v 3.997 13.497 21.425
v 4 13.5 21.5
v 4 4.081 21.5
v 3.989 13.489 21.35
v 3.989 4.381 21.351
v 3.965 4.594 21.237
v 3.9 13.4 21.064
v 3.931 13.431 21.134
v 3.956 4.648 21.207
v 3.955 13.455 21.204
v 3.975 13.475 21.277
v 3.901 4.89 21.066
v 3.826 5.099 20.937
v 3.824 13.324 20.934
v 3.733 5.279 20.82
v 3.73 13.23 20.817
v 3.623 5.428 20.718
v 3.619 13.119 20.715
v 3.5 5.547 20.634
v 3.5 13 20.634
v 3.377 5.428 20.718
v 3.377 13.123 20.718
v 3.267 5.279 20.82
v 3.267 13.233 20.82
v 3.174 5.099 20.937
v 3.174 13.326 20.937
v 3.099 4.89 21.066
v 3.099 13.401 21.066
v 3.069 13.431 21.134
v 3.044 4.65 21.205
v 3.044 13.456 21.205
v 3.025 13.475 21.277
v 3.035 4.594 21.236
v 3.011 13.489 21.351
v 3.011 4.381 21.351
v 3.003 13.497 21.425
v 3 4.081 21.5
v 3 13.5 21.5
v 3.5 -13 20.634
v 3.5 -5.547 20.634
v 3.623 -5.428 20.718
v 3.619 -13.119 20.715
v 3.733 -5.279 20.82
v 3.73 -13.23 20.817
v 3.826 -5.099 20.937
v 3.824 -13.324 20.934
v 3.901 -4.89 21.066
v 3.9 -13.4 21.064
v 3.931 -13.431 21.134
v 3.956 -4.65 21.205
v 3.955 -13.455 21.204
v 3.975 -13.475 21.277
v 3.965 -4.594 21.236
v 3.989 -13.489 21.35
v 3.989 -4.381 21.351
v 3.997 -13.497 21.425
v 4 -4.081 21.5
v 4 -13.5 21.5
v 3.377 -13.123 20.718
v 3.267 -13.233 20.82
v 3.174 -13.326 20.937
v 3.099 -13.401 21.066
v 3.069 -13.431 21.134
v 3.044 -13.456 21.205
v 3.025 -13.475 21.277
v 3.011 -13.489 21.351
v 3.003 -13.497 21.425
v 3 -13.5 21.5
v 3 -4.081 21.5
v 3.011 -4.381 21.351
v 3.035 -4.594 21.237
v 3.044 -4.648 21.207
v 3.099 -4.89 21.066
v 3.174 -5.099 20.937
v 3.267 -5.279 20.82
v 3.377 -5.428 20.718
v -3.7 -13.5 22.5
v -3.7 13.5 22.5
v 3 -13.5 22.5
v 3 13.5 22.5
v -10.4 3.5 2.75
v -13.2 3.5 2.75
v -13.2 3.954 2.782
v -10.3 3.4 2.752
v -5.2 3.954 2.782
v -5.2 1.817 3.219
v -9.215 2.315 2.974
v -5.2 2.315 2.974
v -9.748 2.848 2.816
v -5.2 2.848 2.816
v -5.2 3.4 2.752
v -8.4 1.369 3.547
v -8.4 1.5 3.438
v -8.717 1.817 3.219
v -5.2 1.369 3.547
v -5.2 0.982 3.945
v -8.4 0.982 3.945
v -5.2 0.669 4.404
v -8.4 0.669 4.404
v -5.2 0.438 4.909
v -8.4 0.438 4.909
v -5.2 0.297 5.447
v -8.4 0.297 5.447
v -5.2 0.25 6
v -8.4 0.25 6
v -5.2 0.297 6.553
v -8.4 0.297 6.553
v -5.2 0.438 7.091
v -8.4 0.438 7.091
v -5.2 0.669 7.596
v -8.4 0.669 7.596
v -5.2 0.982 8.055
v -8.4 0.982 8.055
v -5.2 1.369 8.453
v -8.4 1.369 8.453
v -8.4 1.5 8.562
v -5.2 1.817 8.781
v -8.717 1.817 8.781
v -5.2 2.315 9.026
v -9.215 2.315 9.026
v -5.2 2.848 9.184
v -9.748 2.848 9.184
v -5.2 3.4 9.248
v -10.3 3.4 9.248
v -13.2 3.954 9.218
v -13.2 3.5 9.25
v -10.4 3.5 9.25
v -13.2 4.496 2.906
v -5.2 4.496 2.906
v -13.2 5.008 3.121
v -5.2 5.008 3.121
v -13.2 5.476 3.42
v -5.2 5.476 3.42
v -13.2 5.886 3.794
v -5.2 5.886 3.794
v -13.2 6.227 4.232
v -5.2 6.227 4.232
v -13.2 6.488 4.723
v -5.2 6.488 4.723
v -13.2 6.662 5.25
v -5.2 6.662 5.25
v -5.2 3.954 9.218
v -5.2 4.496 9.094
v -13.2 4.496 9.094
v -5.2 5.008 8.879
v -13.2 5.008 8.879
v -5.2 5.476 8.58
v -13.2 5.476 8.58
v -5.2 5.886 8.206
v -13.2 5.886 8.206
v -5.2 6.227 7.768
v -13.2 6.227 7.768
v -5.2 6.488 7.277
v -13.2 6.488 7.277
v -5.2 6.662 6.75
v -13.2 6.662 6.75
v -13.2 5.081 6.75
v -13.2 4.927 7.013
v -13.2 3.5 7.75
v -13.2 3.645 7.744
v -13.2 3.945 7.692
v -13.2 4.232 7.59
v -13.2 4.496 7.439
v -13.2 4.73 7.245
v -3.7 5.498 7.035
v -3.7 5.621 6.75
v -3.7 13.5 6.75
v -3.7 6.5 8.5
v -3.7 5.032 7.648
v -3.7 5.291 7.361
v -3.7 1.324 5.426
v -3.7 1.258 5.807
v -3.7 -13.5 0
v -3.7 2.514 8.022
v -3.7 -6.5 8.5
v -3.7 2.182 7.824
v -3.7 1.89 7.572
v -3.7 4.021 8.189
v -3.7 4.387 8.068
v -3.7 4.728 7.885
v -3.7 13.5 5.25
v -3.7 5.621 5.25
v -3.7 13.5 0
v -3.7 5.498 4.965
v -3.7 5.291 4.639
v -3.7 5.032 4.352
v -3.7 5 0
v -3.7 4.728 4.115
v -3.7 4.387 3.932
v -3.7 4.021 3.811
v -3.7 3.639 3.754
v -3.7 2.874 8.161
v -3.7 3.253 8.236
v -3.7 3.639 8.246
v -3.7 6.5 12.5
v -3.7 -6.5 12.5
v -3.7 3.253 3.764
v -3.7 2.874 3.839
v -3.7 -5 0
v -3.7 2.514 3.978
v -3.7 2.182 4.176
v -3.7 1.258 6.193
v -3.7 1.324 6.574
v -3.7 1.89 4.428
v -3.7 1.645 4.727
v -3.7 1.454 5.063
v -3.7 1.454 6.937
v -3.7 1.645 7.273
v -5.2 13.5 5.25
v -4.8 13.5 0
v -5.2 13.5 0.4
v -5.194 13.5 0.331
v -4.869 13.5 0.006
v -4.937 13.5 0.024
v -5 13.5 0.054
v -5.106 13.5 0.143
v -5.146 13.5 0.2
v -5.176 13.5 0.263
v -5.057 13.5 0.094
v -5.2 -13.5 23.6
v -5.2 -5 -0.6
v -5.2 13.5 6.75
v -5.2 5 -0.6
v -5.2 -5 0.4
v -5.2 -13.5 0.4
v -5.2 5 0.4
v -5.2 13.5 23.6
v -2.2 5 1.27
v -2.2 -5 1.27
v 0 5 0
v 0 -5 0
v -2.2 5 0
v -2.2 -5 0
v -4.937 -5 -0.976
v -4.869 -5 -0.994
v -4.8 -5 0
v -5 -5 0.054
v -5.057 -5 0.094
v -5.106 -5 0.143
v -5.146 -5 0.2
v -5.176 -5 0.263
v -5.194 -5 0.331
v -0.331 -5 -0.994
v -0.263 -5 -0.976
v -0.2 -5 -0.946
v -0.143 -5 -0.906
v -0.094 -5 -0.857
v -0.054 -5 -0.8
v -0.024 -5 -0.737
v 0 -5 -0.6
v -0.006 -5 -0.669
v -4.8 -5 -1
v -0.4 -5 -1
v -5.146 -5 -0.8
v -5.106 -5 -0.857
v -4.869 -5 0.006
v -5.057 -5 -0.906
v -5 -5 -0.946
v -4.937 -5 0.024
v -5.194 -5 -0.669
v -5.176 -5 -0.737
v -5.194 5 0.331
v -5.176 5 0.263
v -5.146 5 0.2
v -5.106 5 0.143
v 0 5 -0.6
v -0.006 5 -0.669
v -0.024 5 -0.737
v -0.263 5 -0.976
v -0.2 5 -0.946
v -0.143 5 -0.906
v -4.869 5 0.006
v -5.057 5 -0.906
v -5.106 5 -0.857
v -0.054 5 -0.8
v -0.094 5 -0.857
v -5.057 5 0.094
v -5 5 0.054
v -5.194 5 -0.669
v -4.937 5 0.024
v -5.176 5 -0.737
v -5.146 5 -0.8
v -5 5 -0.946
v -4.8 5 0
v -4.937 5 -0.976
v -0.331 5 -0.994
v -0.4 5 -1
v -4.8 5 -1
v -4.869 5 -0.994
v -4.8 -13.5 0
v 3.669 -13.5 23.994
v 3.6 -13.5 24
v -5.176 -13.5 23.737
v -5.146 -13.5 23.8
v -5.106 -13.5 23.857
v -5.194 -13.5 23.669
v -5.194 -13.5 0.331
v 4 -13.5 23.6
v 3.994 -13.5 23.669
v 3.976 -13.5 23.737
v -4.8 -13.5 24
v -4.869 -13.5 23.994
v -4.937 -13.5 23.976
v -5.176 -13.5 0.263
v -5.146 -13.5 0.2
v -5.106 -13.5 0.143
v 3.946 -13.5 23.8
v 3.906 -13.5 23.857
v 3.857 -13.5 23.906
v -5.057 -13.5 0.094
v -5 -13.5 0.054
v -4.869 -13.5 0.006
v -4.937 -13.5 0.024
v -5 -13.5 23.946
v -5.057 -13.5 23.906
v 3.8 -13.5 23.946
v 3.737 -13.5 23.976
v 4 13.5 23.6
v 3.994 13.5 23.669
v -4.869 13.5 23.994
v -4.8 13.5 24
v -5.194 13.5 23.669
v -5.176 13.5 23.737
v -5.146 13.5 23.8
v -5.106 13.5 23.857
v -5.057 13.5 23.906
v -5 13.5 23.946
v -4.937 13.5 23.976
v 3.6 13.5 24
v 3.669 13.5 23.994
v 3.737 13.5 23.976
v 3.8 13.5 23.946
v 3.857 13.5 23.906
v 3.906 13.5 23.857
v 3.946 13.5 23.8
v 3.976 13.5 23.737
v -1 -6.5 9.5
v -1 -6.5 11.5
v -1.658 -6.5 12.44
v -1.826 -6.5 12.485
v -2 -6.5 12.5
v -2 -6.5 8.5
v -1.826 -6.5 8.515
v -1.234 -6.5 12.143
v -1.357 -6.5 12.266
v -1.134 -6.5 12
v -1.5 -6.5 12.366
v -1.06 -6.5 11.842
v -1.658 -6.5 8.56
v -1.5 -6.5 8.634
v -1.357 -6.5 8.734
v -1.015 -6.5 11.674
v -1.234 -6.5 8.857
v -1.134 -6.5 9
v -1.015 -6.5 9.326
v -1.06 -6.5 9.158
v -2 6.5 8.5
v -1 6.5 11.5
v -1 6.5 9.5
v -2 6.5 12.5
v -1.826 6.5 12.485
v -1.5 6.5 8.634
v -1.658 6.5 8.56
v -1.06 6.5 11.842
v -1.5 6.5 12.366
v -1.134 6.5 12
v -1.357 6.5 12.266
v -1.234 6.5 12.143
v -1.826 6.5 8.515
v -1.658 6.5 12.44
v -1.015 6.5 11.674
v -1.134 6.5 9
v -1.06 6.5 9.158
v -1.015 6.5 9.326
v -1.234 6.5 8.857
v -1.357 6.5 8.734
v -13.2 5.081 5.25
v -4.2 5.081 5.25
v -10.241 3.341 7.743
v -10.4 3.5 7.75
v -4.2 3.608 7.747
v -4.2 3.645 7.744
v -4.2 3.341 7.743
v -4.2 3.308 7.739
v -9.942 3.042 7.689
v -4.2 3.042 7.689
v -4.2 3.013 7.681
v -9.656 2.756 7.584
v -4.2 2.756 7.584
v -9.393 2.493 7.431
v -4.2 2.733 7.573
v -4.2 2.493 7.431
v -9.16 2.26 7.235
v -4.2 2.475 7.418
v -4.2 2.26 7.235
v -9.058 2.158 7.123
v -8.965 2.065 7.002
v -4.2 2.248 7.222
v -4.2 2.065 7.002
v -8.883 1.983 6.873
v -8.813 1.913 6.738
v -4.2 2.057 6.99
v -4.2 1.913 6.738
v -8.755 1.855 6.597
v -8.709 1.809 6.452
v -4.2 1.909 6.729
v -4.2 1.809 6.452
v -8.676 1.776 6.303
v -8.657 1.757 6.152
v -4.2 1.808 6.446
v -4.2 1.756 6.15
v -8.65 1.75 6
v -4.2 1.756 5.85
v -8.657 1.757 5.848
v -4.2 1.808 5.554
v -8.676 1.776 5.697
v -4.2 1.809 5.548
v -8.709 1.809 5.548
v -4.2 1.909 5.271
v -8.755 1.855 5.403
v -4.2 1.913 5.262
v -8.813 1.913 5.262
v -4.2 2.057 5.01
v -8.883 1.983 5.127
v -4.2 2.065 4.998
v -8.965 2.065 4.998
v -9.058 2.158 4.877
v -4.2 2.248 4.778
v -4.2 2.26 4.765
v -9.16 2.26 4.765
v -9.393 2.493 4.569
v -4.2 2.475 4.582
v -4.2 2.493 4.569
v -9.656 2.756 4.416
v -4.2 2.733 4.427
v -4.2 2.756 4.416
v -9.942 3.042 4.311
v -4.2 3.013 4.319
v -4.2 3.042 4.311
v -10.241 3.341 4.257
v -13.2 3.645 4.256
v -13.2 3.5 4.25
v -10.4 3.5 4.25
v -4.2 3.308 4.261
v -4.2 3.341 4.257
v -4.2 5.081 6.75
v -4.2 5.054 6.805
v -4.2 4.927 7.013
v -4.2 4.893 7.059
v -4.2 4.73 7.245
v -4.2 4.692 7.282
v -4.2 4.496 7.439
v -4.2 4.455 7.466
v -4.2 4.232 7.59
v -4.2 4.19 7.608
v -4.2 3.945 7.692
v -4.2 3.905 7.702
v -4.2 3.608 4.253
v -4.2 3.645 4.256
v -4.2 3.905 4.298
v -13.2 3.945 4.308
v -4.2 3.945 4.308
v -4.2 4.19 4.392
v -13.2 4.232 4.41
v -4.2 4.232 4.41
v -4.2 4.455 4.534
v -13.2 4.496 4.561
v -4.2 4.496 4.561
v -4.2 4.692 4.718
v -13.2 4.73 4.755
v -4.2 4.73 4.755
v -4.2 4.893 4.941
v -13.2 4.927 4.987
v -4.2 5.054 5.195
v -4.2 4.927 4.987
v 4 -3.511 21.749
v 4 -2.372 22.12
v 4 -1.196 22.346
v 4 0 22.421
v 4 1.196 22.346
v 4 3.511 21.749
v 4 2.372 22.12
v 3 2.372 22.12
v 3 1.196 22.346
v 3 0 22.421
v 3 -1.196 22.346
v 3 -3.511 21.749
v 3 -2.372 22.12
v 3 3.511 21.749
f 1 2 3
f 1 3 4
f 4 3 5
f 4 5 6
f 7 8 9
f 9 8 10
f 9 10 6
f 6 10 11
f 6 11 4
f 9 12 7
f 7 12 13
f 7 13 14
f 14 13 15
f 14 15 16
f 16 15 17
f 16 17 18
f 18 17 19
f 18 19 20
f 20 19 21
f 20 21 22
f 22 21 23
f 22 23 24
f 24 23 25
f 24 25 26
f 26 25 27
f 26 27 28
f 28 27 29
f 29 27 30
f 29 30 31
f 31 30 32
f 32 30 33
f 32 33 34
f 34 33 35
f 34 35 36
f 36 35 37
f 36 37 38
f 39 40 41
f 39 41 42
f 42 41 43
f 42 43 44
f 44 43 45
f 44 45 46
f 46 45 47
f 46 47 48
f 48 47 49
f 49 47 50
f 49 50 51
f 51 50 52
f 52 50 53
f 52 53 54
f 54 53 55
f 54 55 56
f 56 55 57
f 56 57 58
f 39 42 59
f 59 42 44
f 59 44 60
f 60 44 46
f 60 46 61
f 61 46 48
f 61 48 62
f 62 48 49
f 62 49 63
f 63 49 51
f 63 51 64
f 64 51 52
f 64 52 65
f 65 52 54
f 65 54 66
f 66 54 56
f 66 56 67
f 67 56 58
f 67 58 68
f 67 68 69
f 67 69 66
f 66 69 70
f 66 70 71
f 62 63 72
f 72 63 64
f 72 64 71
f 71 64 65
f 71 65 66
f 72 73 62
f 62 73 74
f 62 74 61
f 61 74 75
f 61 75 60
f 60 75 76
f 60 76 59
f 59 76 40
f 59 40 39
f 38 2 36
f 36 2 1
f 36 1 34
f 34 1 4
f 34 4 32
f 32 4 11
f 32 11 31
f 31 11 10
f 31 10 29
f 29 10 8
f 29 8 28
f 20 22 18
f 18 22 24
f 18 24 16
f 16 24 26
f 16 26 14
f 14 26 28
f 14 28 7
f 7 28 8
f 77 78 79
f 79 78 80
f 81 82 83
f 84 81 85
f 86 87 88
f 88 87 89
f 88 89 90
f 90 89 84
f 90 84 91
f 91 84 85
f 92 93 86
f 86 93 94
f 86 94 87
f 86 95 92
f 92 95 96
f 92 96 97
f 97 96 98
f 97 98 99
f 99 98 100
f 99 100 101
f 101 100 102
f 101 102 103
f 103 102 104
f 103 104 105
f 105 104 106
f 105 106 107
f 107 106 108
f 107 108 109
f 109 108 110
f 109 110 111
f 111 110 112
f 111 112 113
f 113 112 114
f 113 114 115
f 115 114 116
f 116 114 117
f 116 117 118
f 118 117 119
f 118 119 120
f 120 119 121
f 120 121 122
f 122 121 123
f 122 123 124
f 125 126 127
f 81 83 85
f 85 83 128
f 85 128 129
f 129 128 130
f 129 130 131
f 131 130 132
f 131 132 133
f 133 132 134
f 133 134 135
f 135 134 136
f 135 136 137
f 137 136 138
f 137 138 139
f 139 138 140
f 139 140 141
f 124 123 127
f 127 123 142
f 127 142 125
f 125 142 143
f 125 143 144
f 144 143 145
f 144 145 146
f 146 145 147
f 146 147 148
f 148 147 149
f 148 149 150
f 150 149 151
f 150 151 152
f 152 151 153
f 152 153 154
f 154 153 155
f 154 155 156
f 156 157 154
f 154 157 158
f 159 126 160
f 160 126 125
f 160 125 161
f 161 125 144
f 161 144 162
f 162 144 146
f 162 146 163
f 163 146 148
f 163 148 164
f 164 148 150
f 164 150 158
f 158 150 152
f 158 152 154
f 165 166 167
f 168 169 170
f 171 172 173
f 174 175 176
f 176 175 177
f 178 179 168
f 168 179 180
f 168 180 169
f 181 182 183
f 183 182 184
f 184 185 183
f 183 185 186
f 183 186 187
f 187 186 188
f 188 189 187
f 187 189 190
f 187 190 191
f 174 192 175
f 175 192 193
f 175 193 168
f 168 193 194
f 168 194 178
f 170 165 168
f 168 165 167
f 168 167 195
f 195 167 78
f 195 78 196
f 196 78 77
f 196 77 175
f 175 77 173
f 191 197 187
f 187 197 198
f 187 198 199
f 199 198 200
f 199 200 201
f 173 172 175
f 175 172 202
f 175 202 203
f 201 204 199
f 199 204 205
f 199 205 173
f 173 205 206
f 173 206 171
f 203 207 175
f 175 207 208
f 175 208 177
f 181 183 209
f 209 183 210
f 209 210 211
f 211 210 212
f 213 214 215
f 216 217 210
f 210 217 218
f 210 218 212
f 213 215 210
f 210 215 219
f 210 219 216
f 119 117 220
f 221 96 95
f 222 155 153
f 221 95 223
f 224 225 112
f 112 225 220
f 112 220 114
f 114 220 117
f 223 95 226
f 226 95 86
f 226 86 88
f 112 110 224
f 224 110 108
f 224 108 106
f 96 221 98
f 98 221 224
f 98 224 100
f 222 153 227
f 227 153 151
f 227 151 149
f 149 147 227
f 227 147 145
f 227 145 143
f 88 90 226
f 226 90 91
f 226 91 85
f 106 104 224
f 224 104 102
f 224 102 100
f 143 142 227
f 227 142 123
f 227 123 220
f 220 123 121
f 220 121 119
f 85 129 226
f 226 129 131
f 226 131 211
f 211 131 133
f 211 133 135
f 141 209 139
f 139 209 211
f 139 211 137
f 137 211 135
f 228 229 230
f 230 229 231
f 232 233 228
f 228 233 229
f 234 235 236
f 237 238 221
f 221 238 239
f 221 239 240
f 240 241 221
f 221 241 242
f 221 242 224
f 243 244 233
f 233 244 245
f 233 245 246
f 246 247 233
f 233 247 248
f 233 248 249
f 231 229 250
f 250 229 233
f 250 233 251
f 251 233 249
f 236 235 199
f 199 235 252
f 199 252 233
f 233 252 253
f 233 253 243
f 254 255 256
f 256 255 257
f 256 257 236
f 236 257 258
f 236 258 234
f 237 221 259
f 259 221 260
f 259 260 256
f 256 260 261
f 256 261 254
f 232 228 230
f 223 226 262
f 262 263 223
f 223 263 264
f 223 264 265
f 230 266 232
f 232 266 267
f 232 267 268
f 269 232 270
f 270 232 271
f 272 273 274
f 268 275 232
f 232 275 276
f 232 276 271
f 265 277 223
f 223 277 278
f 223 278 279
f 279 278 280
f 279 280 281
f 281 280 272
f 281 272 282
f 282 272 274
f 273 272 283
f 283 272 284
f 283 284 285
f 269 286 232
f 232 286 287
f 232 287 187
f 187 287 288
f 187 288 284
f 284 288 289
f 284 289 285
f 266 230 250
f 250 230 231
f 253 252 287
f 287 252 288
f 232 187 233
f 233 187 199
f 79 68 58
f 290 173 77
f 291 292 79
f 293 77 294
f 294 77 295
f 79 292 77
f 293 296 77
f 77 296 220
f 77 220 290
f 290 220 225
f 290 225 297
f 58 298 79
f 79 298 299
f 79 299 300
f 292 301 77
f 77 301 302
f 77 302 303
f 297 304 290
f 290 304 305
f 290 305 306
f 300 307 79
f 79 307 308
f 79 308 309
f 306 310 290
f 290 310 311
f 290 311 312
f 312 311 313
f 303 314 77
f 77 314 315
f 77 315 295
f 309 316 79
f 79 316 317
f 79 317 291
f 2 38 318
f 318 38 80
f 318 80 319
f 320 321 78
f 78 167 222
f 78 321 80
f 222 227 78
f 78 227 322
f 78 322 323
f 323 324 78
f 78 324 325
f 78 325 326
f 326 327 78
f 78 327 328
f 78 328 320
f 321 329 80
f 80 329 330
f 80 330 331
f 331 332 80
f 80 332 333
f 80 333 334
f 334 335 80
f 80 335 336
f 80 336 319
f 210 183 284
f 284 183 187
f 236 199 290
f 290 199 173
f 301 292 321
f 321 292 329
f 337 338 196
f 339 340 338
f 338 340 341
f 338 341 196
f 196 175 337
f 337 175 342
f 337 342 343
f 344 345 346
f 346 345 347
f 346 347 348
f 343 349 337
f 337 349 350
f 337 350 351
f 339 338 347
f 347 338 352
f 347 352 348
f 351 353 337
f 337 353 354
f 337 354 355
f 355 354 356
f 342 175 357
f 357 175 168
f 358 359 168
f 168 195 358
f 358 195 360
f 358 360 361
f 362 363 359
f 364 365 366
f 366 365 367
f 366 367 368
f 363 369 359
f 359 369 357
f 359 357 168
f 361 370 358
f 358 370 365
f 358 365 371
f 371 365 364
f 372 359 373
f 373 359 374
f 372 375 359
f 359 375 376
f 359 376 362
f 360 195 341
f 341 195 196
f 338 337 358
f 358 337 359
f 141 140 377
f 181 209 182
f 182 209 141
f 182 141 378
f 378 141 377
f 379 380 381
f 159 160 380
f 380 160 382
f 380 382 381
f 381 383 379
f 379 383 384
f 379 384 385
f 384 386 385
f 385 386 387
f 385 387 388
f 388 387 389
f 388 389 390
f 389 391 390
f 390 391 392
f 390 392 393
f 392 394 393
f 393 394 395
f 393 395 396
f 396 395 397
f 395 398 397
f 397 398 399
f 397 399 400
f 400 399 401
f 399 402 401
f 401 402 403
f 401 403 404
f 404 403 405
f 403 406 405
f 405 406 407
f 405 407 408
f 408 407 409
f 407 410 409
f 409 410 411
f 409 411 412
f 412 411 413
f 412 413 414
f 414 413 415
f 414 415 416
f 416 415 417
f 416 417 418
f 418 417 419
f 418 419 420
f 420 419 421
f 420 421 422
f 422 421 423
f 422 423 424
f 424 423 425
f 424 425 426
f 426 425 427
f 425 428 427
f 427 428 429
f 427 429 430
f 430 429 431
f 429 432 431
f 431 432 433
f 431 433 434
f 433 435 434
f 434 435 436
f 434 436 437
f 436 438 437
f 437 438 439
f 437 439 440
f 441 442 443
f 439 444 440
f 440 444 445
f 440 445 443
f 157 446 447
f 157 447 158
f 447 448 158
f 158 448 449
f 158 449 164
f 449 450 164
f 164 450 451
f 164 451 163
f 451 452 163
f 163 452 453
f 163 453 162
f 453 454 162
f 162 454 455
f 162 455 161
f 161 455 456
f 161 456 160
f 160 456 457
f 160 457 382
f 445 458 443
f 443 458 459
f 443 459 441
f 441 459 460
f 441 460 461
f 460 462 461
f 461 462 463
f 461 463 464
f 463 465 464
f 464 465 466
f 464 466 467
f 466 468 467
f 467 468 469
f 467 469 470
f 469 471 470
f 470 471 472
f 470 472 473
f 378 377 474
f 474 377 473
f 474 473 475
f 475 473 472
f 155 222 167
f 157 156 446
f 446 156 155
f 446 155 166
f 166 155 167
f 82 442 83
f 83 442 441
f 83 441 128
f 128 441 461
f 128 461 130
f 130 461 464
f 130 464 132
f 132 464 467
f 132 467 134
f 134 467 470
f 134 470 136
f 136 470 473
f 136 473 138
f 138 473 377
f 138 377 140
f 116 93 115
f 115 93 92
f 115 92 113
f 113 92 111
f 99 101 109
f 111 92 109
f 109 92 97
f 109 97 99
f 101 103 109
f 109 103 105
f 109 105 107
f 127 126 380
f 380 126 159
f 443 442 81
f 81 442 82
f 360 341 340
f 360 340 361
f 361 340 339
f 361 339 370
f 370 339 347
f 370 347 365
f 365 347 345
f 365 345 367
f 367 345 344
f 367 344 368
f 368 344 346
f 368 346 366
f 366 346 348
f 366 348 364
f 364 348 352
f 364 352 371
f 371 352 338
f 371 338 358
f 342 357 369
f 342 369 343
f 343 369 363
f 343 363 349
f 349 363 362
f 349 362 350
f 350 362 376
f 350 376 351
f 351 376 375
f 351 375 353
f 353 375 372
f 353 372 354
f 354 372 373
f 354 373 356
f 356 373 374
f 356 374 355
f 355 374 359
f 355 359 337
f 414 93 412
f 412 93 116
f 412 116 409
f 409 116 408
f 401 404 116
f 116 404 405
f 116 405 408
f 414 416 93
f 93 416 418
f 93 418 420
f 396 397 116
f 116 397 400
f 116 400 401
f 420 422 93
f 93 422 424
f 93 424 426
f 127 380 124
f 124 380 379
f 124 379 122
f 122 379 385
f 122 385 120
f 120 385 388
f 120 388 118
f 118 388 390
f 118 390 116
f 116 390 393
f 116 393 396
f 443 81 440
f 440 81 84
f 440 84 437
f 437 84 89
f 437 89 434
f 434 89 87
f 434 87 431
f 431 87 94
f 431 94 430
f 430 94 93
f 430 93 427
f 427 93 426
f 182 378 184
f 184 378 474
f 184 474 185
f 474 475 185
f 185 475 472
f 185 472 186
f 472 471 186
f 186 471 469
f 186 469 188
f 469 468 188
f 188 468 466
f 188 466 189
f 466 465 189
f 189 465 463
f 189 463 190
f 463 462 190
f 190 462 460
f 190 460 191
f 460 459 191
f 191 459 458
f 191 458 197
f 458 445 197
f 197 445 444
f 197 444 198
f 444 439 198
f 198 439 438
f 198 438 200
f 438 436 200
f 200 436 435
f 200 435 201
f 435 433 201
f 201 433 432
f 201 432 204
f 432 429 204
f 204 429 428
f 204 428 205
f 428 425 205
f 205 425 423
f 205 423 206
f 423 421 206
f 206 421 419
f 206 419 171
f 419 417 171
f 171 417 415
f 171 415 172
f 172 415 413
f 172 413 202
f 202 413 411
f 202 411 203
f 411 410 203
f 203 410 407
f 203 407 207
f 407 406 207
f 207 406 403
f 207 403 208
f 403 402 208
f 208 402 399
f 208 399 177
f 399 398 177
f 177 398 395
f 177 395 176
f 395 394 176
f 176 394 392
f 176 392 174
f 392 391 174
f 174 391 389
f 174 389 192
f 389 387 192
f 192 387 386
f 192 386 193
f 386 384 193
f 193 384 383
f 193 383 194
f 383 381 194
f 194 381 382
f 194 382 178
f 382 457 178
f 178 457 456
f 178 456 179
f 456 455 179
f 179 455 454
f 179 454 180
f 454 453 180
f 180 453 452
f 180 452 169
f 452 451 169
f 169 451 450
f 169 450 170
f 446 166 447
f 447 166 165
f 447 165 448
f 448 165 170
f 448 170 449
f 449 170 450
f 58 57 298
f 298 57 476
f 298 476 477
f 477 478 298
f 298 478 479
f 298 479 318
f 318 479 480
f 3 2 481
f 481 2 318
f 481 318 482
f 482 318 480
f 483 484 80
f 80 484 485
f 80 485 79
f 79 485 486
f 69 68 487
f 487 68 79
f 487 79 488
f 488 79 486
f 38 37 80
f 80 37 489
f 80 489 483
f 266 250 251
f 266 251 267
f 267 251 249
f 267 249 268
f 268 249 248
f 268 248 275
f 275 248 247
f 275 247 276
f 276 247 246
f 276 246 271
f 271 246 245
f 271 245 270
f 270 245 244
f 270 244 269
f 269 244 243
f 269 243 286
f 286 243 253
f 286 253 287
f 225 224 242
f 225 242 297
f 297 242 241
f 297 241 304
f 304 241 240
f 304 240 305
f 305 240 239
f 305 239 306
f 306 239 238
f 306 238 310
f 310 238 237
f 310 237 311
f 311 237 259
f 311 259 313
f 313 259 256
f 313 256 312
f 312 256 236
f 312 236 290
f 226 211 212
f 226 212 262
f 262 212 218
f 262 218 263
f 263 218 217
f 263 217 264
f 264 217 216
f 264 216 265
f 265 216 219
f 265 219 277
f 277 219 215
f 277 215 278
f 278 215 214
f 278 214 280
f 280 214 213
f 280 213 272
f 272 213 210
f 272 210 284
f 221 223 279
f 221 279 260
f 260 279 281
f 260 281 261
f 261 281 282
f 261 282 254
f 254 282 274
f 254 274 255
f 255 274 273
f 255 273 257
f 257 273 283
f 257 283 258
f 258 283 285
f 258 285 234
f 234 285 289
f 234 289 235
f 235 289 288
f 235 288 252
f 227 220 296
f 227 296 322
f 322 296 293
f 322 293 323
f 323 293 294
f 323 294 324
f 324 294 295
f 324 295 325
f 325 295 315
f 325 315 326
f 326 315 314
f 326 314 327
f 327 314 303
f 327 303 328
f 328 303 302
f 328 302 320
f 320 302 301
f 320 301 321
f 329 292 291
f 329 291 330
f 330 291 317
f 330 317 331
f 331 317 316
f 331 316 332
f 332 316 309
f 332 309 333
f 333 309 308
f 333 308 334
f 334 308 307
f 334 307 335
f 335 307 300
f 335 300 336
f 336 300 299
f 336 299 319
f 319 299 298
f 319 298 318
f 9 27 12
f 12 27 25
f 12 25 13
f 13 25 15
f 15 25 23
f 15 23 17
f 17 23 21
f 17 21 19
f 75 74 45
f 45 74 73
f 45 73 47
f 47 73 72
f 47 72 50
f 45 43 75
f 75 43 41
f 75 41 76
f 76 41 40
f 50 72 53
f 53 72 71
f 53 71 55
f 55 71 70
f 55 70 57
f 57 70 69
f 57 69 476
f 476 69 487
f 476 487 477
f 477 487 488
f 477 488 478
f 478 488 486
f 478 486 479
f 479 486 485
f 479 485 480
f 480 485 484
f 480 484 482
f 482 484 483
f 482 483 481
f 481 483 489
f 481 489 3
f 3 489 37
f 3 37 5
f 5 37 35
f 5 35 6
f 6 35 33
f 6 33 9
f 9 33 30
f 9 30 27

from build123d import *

# Parameters (mm, degrees)
BOSS_EXTRUDE1_DEPTH      = 5
BOSS_EXTRUDE1_DEPTH_BACK = 5
SKETCH2_W                = 3.7
SKETCH2_H                = 10
BOSS_EXTRUDE2_DEPTH      = 1
SKETCH3_W                = 1
SKETCH3_H                = 10
BOSS_EXTRUDE3_DEPTH      = 1.5
SKETCH4_W                = 6.7
SKETCH4_H                = 27
SKETCH4_W_2              = 1.5
BOSS_EXTRUDE4_DEPTH      = 1.5
SKETCH5_W                = 4
SKETCH5_H                = 13
BOSS_EXTRUDE5_DEPTH      = 2.7
CUT_EXTRUDE1_DEPTH       = 29.339724769
BOSS_EXTRUDE6_START      = -1.5
BOSS_EXTRUDE6_DEPTH      = 8
CUT_EXTRUDE2_START       = -3.25
SKETCH8_W                = 4.8
SKETCH8_H                = 6.5
CUT_EXTRUDE2_DEPTH       = 3.25
FILLET4_R                = 1
CHAMFER1_SIZE            = 2
CHAMFER3_SIZE            = 0.5
SKETCH4_3_W              = 1
SKETCH4_3_H              = 27
BOSS_EXTRUDE7_DEPTH      = 2
SKETCH4_4_W              = 1
SKETCH4_4_H              = 27
BOSS_EXTRUDE8_DEPTH      = 1.5
FILLET6_R                = 1
FILLET8_R                = 0.4
SKETCH9_R                = 9.5
CUT_EXTRUDE3_DEPTH       = 32.948239388


with BuildPart() as part:
    # Sketch1 → Boss-Extrude1 (new, two sides: drawn at the far end of the back side and taken through both)
    with BuildSketch(Plane(origin=(0, 0, 0), x_dir=(1, 0, 0), z_dir=(0, 1, 0)).offset(-BOSS_EXTRUDE1_DEPTH_BACK)):
        Polygon((0, 0), (-2.2, 0), (-2.2, -1.270170592), align=None)
    extrude(amount=BOSS_EXTRUDE1_DEPTH + BOSS_EXTRUDE1_DEPTH_BACK)

    # Sketch2 → Boss-Extrude2 (add)
    with BuildSketch(Plane(origin=(0, 0, 0), x_dir=(-1, 0, 0), z_dir=(0, 0, -1))):
        with Locations((1.85, 0)):
            Rectangle(SKETCH2_W, SKETCH2_H)
    extrude(amount=BOSS_EXTRUDE2_DEPTH)

    # Sketch3 → Boss-Extrude3 (add)
    with BuildSketch(Plane.ZY.offset(3.7)):
        Polygon((0, -5), (0, -13.5), (22.5, -13.5), (22.5, 13.5), (0, 13.5), (0, 5), align=None)
        with Locations((-0.5, 0)):
            Rectangle(SKETCH3_W, SKETCH3_H)
    extrude(amount=BOSS_EXTRUDE3_DEPTH)

    # Sketch4 → Boss-Extrude4 (add)
    with BuildSketch(Plane.XY.offset(22.5)):
        with Locations((-0.35, 0)):
            Rectangle(SKETCH4_W, SKETCH4_H)
        with Locations((-4.45, 0)):
            Rectangle(SKETCH4_W_2, SKETCH4_H)
    extrude(amount=BOSS_EXTRUDE4_DEPTH)

    # Sketch5 → Boss-Extrude5 (add)
    with BuildSketch(Plane(origin=(-3.7, 0, 0), x_dir=(0, 0, -1), z_dir=(1, 0, 0))):
        with Locations((-10.5, 0)):
            Rectangle(SKETCH5_W, SKETCH5_H)
    extrude(amount=BOSS_EXTRUDE5_DEPTH)

    # Sketch7 → Cut-Extrude1 (cut, through all)
    with BuildSketch(Plane(origin=(-3.7, 0, 0), x_dir=(0, 0, -1), z_dir=(1, 0, 0))):
        with BuildLine():
            Line((-5.25, 5.08113883), (-5.25, 13.5))
            Line((-5.25, 13.5), (-6.75, 13.5))
            Line((-6.75, 13.5), (-6.75, 5.08113883))
            ThreePointArc((-6.75, 5.08113883), (-6, 1.75), (-5.25, 5.08113883))
        make_face()
    extrude(amount=-CUT_EXTRUDE1_DEPTH, mode=Mode.SUBTRACT)

    # Sketch7<3> → Boss-Extrude6 (add)
    with BuildSketch(Plane(origin=(-3.7, 0, 0), x_dir=(0, 0, -1), z_dir=(1, 0, 0)).offset(BOSS_EXTRUDE6_START)):
        with BuildLine():
            Line((-8.5, 1.423344034), (-8.5, 5.576655966))
            ThreePointArc((-8.5, 5.576655966), (-9.25, 3.5), (-8.5, 1.423344034))
        make_face()
        with BuildLine():
            Line((-6.75, 5.08113883), (-6.75, 6.66227766))
            ThreePointArc((-6.75, 6.66227766), (-7.713262565, 6.261744265), (-8.5, 5.576655966))
            Line((-8.5, 5.576655966), (-8.5, 1.423344034))
            ThreePointArc((-8.5, 1.423344034), (-4.896029892, 0.443245185), (-2.75, 3.5))
            ThreePointArc((-2.75, 3.5), (-3.450490243, 5.515564437), (-5.25, 6.66227766))
            Line((-5.25, 6.66227766), (-5.25, 5.08113883))
            ThreePointArc((-5.25, 5.08113883), (-4.520980054, 4.435414347), (-4.25, 3.5))
            ThreePointArc((-4.25, 3.5), (-6.935414347, 2.020980054), (-6.75, 5.08113883))
        make_face()
    extrude(amount=-BOSS_EXTRUDE6_DEPTH)

    # Sketch8 → Cut-Extrude2 (cut)
    with BuildSketch(Plane(origin=(0, 0.25, 0), x_dir=(-1, 0, 0), z_dir=(0, -1, 0)).offset(CUT_EXTRUDE2_START)):
        with Locations((10.8, -6)):
            Rectangle(SKETCH8_W, SKETCH8_H)
    extrude(amount=CUT_EXTRUDE2_DEPTH, mode=Mode.SUBTRACT)

    # Fillet4
    fillet4_edges = [part.edges().sort_by_distance(p)[0] for p in [
        (-1, 0, 8.5),
        (-1, 0, 12.5),
    ]]
    fillet(fillet4_edges, radius=FILLET4_R)

    # Chamfer1
    # the kernel refuses this chamfer: 2 mm, written as the material it adds along each edge
    with BuildSketch(Plane(origin=(-8.4, 3.5, -2.393365976), x_dir=(0.027495876610586487, -0.9996219169112968, 0), z_dir=(0, 0, 1))) as chamfer1_piece_1_section:
        Polygon((CHAMFER1_SIZE * 0.999621916911, -CHAMFER1_SIZE * 0.0274958766106), (-CHAMFER1_SIZE * 0.0274958766106, -CHAMFER1_SIZE * 0.999621916911), (0, 0), align=None)
    chamfer1_piece_1 = extrude(amount=11.786731952, mode=Mode.PRIVATE)
    chamfer1_piece_1 = chamfer1_piece_1 - Plane(origin=(-8.681951998, 3.5, 6), x_dir=(0, 0.9035079029052511, -0.4285714285714289), z_dir=(1, 0, 0)) * Cylinder(1.75, 32, mode=Mode.PRIVATE)
    chamfer1_piece_1 = chamfer1_piece_1 & Plane(origin=(-8.681951998, 3.5, 6), x_dir=(0, 0.6389710663783268, 0.7692307692307582), z_dir=(1, 0, 0)) * Cylinder(3.25, 32, mode=Mode.PRIVATE)
    add(chamfer1_piece_1)
    with BuildSketch(Plane(origin=(-8.4, 3.5, 2.606634024), x_dir=(-0.9996219169112968, 0.02749587661058627, 0), z_dir=(0, 0, 1))) as chamfer1_piece_2_section:
        Polygon((CHAMFER1_SIZE * 0.999621916911, CHAMFER1_SIZE * 0.0274958766106), (-CHAMFER1_SIZE * 0.0274958766106, CHAMFER1_SIZE * 0.999621916911), (0, 0), align=None)
    chamfer1_piece_2 = extrude(amount=11.786731952, mode=Mode.PRIVATE)
    chamfer1_piece_2 = chamfer1_piece_2 - Plane(origin=(-10.090710098, 3.5, 6), x_dir=(0, 0.9035079029052511, -0.4285714285714289), z_dir=(1, 0, 0)) * Cylinder(1.75, 32, mode=Mode.PRIVATE)
    chamfer1_piece_2 = chamfer1_piece_2 & Plane(origin=(-10.090710098, 3.5, 6), x_dir=(0, 0.6389710663783268, 0.7692307692307582), z_dir=(1, 0, 0)) * Cylinder(3.25, 32, mode=Mode.PRIVATE)
    add(chamfer1_piece_2)

    # Chamfer3
    chamfer3_edges = [part.edges().sort_by_distance(p)[0] for p in [
        (-3.7, 1.75, 6),
    ]]
    chamfer(chamfer3_edges, length=CHAMFER3_SIZE)



with BuildPart() as body_2:
    # Sketch4<3> → Boss-Extrude7 (new body)
    with BuildSketch(Plane.XY.offset(22.5)):
        with Locations((3.5, 0)):
            Rectangle(SKETCH4_3_W, SKETCH4_3_H)
    extrude(amount=-BOSS_EXTRUDE7_DEPTH)


with BuildPart() as part_1:
    add(part.part)

    add(body_2.part)  # Boss-Extrude8 merges body 2
    # Sketch4<4> → Boss-Extrude8 (add)
    with BuildSketch(Plane.XY.offset(22.5)):
        with Locations((3.5, 0)):
            Rectangle(SKETCH4_4_W, SKETCH4_4_H)
        with Locations((3.5, 0)):
            Rectangle(SKETCH4_4_W, SKETCH4_4_H)
        with Locations((3.5, 0)):
            Rectangle(SKETCH4_4_W, SKETCH4_4_H)
    extrude(amount=BOSS_EXTRUDE8_DEPTH)

    # Fillet6
    # the kernel refuses this fillet: 1 mm, written as the material it takes off along each edge
    with BuildSketch(Plane(origin=(6.5, -13.5, 20.5), x_dir=(0, 0, 1), z_dir=(-1, 0, 0))) as fillet6_piece_1:
        with BuildLine():
            CenterArc((FILLET6_R, FILLET6_R), FILLET6_R, 180, 90)
            Line((0, FILLET6_R), (0, 0))
            Line((0, 0), (FILLET6_R, 0))
        make_face()
    extrude(amount=6, mode=Mode.SUBTRACT)
    with BuildSketch(Plane(origin=(4, 16, 20.5), x_dir=(-1, 0, 0), z_dir=(0, -1, 0))) as fillet6_piece_2:
        with BuildLine():
            CenterArc((FILLET6_R, -FILLET6_R), FILLET6_R, 90, 90)
            Line((0, -FILLET6_R), (0, 0))
            Line((0, 0), (FILLET6_R, 0))
        make_face()
    extrude(amount=32, mode=Mode.SUBTRACT)
    with BuildSketch(Plane(origin=(3, -16, 20.5), x_dir=(0, 0, 1), z_dir=(0, 1, 0))) as fillet6_piece_3:
        with BuildLine():
            CenterArc((FILLET6_R, FILLET6_R), FILLET6_R, 180, 90)
            Line((0, FILLET6_R), (0, 0))
            Line((0, 0), (FILLET6_R, 0))
        make_face()
    extrude(amount=32, mode=Mode.SUBTRACT)
    with BuildSketch(Plane(origin=(0.5, 13.5, 20.5), x_dir=(0, -1, 0), z_dir=(1, 0, 0))) as fillet6_piece_4:
        with BuildLine():
            CenterArc((FILLET6_R, -FILLET6_R), FILLET6_R, 90, 90)
            Line((0, -FILLET6_R), (0, 0))
            Line((0, 0), (FILLET6_R, 0))
        make_face()
    extrude(amount=6, mode=Mode.SUBTRACT)

    # Fillet8
    fillet8_edges = [part_1.edges().sort_by_distance(p)[0] for p in [
        (4, 0, 24),
        (0, 0, -1),
        (-5.2, 9.25, 0),
        (-5.2, -9.25, 0),
        (-5.2, 0, -1),
        (-5.2, 0, 24),
    ]]
    fillet(fillet8_edges, radius=FILLET8_R)

    # Sketch9 → Cut-Extrude3 (cut, through all)
    with BuildSketch(Plane.ZY.offset(-3)):
        with Locations((12.921330644, 0)):
            Circle(SKETCH9_R)
    extrude(amount=-CUT_EXTRUDE3_DEPTH, mode=Mode.SUBTRACT)


solid = part_1.part
